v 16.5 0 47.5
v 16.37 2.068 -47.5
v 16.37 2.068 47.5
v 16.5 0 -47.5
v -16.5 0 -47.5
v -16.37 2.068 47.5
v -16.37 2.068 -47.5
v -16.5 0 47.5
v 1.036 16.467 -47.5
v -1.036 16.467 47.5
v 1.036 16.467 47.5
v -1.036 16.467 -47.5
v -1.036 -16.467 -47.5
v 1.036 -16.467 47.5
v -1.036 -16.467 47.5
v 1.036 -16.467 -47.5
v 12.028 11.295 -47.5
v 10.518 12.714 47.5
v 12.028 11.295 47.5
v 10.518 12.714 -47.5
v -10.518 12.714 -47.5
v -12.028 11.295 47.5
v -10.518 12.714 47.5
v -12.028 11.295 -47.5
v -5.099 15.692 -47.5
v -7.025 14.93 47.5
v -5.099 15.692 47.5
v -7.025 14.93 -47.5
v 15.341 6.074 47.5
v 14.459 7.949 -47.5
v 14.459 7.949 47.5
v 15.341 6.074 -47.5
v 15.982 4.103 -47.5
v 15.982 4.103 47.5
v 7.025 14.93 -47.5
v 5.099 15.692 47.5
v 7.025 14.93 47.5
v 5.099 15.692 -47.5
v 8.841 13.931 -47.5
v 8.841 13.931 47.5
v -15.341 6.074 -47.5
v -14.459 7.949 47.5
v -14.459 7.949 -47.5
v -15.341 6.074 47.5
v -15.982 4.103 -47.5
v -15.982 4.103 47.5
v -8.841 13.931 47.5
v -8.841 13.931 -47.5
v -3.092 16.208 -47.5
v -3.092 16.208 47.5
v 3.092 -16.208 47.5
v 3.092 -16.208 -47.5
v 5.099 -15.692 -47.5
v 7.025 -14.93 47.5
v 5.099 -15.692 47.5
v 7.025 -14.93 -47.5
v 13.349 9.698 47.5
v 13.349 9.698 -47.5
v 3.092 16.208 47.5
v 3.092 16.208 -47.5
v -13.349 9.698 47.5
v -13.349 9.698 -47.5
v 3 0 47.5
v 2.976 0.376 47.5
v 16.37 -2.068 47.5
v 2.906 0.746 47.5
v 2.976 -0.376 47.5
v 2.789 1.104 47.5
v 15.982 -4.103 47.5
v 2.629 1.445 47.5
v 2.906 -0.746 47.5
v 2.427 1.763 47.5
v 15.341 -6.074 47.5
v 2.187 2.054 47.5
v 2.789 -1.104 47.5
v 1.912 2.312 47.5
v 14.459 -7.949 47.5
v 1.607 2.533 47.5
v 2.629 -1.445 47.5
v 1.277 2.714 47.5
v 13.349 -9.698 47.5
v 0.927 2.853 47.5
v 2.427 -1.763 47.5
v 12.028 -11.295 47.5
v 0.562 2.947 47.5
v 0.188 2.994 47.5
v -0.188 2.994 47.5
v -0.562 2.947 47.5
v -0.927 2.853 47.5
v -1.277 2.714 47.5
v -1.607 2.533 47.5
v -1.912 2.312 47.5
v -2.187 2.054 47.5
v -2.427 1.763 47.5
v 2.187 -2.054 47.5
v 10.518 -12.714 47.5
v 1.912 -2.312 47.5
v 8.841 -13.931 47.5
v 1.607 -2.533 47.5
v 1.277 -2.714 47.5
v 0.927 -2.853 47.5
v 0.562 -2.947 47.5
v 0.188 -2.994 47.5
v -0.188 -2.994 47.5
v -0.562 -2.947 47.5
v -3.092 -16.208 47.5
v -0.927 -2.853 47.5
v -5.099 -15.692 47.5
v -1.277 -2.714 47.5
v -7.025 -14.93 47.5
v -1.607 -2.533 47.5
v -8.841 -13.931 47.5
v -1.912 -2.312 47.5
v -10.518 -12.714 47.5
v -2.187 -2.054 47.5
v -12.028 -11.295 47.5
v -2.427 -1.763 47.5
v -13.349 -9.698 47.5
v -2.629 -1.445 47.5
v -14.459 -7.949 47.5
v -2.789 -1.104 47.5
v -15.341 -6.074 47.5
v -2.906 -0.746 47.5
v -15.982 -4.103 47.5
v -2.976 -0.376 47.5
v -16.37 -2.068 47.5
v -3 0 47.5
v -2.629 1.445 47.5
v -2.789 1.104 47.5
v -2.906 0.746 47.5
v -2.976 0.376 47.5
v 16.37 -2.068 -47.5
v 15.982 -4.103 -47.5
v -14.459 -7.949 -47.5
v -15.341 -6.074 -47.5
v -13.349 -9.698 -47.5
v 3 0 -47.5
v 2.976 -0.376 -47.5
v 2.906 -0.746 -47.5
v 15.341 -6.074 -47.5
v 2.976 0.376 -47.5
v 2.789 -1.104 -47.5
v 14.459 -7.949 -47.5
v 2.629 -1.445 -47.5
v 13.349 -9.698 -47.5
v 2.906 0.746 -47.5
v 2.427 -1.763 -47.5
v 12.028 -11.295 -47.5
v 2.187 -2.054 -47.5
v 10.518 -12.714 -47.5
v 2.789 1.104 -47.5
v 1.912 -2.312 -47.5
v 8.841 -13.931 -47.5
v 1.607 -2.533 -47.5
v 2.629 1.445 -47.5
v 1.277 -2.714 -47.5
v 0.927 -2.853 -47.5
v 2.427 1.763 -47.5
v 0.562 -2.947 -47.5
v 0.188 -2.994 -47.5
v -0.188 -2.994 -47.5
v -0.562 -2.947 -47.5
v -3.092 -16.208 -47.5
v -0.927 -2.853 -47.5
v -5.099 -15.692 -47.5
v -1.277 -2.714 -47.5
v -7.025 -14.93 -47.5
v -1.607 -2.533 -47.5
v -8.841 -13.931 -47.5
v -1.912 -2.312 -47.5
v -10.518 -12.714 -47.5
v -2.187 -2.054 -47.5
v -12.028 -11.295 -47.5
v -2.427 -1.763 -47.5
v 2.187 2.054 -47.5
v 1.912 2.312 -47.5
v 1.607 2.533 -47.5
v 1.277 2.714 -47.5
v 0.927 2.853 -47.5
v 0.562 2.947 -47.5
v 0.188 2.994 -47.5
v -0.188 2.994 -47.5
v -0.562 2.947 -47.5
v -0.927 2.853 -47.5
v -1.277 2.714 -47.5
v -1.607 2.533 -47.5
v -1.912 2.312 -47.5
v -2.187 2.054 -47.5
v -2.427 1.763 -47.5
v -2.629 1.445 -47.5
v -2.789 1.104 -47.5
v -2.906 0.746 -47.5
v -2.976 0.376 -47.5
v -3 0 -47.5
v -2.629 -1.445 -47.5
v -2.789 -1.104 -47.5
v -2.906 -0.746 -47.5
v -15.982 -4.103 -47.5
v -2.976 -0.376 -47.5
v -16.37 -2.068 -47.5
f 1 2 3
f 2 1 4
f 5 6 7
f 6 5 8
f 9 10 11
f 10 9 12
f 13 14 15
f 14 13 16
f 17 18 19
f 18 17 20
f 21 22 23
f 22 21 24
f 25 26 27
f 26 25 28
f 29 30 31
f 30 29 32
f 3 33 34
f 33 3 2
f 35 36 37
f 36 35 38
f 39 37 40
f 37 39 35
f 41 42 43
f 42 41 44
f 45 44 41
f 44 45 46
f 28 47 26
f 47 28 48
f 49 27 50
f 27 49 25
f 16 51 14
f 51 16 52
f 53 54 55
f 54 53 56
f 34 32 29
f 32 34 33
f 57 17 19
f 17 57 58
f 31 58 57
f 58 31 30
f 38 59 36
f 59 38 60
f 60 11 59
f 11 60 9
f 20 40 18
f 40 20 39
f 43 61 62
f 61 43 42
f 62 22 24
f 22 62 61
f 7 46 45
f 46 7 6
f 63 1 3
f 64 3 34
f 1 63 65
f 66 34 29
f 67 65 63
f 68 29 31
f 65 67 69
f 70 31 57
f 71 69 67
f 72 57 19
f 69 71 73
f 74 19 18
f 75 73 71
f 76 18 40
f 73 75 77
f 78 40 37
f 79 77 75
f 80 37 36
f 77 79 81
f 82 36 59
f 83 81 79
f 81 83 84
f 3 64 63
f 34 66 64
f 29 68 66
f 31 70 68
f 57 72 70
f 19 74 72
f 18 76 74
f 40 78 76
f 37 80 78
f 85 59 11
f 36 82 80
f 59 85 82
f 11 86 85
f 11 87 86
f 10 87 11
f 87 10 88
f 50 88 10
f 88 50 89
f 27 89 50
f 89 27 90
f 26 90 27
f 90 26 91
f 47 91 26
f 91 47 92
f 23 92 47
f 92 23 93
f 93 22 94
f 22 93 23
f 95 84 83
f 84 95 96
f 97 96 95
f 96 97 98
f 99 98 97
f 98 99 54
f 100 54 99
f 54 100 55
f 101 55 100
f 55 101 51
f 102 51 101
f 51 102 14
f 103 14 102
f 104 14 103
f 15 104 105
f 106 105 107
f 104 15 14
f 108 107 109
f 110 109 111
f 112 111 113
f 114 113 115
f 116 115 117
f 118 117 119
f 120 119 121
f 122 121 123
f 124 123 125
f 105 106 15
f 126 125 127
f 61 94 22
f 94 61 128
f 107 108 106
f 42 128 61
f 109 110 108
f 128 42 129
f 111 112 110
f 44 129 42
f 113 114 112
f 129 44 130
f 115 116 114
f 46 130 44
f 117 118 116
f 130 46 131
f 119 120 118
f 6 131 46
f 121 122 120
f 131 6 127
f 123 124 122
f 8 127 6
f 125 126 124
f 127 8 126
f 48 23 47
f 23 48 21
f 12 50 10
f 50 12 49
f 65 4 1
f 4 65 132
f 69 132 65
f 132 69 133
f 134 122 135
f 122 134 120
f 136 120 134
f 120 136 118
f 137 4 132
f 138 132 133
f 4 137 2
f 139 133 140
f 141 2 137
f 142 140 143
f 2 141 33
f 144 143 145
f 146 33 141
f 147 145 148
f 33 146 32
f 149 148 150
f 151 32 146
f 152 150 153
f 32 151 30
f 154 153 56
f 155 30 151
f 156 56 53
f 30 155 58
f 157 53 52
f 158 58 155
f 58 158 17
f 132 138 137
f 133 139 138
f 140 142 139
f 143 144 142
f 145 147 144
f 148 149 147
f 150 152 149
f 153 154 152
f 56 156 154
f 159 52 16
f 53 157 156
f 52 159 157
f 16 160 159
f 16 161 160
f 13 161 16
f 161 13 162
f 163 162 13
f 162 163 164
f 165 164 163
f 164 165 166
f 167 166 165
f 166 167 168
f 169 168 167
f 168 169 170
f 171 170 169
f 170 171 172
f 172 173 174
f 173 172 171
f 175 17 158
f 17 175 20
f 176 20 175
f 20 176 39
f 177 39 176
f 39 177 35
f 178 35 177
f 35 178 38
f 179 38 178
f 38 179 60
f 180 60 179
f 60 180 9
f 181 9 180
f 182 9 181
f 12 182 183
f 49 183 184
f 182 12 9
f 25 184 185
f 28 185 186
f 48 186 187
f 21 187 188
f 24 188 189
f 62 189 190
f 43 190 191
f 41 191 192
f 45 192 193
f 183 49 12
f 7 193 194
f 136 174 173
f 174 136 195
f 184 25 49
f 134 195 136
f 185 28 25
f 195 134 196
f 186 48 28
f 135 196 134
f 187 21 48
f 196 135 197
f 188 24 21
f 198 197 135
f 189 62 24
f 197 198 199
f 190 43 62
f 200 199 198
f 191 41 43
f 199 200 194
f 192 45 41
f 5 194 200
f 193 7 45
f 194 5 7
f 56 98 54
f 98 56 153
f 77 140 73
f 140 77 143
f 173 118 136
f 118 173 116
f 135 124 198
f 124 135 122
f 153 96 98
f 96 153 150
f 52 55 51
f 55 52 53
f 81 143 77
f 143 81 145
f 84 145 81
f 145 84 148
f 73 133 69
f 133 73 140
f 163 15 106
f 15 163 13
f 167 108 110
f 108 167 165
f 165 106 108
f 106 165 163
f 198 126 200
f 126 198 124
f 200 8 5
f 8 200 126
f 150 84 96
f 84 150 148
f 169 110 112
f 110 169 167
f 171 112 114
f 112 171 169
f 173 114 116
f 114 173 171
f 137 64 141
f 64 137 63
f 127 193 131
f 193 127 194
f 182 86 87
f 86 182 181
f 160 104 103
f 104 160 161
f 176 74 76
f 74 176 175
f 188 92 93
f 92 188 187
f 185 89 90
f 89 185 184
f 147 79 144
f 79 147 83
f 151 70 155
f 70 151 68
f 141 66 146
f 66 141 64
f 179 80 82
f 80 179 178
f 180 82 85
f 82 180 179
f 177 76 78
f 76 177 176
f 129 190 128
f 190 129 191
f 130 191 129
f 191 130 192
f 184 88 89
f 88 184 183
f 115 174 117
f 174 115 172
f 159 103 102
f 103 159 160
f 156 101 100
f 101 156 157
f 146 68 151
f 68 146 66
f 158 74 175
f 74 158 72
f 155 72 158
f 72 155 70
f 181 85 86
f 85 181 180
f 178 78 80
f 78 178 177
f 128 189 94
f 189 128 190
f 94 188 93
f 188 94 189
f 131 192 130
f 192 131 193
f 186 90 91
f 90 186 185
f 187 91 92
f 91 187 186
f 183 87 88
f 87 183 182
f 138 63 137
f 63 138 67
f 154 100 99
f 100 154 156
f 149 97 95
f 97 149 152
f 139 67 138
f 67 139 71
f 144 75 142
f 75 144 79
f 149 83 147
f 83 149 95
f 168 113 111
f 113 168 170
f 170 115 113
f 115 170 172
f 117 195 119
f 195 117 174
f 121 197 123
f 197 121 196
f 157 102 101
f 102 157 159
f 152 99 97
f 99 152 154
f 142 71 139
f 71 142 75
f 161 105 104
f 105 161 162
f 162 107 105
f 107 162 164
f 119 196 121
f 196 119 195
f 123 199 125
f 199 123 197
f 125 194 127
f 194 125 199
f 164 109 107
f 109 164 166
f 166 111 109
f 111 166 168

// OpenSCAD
$fn = 50;


difference() {
	union() {
		translate(v = [0, 0, -47.5000000000]) {
			cylinder(h = 95, r = 16.5000000000);
		}
	}
	union() {
		translate(v = [0, 0, -100.0000000000]) {
			cylinder(h = 200, r = 3);
		}
	}
}
